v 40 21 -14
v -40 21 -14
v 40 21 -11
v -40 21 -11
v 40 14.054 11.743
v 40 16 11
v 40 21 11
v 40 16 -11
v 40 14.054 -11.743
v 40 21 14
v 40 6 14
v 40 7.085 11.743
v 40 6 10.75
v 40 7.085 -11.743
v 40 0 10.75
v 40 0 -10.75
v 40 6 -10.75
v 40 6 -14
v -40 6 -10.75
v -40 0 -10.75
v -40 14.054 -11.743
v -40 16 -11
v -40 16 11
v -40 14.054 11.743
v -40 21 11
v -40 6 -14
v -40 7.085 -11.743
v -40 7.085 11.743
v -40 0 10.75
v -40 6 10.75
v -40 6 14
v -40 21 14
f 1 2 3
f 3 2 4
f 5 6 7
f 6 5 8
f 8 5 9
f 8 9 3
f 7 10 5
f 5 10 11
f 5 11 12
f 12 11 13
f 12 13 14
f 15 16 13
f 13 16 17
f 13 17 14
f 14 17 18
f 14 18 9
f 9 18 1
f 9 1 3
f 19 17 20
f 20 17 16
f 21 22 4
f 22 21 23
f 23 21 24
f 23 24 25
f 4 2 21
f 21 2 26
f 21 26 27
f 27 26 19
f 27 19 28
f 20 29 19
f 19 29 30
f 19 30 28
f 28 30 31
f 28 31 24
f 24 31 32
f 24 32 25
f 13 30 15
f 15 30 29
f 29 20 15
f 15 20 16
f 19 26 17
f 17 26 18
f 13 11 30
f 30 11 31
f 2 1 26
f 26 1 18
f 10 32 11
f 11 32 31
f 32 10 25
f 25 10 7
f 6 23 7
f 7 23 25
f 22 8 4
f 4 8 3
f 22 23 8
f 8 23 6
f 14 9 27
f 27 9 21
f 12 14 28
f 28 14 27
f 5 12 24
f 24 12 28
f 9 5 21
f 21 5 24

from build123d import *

# Parameters (mm, degrees)
SKETCH1_W           = 80
SKETCH1_H           = 21.5
BOSS_EXTRUDE1_DEPTH = 6
SKETCH2_W           = 80
SKETCH2_H           = 28
BOSS_EXTRUDE2_DEPTH = 15
SKETCH3_W           = 80
SKETCH3_H           = 22
CUT_EXTRUDE1_DEPTH  = 5
CUT_EXTRUDE2_REACH  = 85.887
SKETCH4_W           = 23.48673248
SKETCH4_H           = 6.968727305


with BuildPart() as part:
    # Sketch1 → Boss-Extrude1 (new body)
    with BuildSketch(Plane(origin=(0, 0, 0), x_dir=(1, 0, 0), z_dir=(0, 1, 0))):
        Rectangle(SKETCH1_W, SKETCH1_H)
    extrude(amount=BOSS_EXTRUDE1_DEPTH)

    # Sketch2 → Boss-Extrude2 (add)
    with BuildSketch(Plane(origin=(0, 6, 0), x_dir=(1, 0, 0), z_dir=(0, 1, 0))):
        Rectangle(SKETCH2_W, SKETCH2_H)
    extrude(amount=BOSS_EXTRUDE2_DEPTH)

    # Sketch3 → Cut-Extrude1 (cut)
    with BuildSketch(Plane(origin=(0, 21, 0), x_dir=(1, 0, 0), z_dir=(0, 1, 0))):
        Rectangle(SKETCH3_W, SKETCH3_H)
    extrude(amount=-CUT_EXTRUDE1_DEPTH, mode=Mode.SUBTRACT)

    # Sketch4 → Cut-Extrude2 (cut, up to next)
    with BuildSketch(Plane(origin=(40, 0, 0), x_dir=(0, 0, -1), z_dir=(1, 0, 0)), mode=Mode.PRIVATE) as cut_extrude2_sk1:
        with Locations((0, 10.569687274)):
            Rectangle(SKETCH4_W, SKETCH4_H)
    cut_extrude2_tool1 = extrude(cut_extrude2_sk1.sketch, amount=-CUT_EXTRUDE2_REACH, mode=Mode.PRIVATE) & part.part
    add(cut_extrude2_tool1.solids().sort_by_distance((40, 10.569687, 0))[0], mode=Mode.SUBTRACT)


solid = part.part
